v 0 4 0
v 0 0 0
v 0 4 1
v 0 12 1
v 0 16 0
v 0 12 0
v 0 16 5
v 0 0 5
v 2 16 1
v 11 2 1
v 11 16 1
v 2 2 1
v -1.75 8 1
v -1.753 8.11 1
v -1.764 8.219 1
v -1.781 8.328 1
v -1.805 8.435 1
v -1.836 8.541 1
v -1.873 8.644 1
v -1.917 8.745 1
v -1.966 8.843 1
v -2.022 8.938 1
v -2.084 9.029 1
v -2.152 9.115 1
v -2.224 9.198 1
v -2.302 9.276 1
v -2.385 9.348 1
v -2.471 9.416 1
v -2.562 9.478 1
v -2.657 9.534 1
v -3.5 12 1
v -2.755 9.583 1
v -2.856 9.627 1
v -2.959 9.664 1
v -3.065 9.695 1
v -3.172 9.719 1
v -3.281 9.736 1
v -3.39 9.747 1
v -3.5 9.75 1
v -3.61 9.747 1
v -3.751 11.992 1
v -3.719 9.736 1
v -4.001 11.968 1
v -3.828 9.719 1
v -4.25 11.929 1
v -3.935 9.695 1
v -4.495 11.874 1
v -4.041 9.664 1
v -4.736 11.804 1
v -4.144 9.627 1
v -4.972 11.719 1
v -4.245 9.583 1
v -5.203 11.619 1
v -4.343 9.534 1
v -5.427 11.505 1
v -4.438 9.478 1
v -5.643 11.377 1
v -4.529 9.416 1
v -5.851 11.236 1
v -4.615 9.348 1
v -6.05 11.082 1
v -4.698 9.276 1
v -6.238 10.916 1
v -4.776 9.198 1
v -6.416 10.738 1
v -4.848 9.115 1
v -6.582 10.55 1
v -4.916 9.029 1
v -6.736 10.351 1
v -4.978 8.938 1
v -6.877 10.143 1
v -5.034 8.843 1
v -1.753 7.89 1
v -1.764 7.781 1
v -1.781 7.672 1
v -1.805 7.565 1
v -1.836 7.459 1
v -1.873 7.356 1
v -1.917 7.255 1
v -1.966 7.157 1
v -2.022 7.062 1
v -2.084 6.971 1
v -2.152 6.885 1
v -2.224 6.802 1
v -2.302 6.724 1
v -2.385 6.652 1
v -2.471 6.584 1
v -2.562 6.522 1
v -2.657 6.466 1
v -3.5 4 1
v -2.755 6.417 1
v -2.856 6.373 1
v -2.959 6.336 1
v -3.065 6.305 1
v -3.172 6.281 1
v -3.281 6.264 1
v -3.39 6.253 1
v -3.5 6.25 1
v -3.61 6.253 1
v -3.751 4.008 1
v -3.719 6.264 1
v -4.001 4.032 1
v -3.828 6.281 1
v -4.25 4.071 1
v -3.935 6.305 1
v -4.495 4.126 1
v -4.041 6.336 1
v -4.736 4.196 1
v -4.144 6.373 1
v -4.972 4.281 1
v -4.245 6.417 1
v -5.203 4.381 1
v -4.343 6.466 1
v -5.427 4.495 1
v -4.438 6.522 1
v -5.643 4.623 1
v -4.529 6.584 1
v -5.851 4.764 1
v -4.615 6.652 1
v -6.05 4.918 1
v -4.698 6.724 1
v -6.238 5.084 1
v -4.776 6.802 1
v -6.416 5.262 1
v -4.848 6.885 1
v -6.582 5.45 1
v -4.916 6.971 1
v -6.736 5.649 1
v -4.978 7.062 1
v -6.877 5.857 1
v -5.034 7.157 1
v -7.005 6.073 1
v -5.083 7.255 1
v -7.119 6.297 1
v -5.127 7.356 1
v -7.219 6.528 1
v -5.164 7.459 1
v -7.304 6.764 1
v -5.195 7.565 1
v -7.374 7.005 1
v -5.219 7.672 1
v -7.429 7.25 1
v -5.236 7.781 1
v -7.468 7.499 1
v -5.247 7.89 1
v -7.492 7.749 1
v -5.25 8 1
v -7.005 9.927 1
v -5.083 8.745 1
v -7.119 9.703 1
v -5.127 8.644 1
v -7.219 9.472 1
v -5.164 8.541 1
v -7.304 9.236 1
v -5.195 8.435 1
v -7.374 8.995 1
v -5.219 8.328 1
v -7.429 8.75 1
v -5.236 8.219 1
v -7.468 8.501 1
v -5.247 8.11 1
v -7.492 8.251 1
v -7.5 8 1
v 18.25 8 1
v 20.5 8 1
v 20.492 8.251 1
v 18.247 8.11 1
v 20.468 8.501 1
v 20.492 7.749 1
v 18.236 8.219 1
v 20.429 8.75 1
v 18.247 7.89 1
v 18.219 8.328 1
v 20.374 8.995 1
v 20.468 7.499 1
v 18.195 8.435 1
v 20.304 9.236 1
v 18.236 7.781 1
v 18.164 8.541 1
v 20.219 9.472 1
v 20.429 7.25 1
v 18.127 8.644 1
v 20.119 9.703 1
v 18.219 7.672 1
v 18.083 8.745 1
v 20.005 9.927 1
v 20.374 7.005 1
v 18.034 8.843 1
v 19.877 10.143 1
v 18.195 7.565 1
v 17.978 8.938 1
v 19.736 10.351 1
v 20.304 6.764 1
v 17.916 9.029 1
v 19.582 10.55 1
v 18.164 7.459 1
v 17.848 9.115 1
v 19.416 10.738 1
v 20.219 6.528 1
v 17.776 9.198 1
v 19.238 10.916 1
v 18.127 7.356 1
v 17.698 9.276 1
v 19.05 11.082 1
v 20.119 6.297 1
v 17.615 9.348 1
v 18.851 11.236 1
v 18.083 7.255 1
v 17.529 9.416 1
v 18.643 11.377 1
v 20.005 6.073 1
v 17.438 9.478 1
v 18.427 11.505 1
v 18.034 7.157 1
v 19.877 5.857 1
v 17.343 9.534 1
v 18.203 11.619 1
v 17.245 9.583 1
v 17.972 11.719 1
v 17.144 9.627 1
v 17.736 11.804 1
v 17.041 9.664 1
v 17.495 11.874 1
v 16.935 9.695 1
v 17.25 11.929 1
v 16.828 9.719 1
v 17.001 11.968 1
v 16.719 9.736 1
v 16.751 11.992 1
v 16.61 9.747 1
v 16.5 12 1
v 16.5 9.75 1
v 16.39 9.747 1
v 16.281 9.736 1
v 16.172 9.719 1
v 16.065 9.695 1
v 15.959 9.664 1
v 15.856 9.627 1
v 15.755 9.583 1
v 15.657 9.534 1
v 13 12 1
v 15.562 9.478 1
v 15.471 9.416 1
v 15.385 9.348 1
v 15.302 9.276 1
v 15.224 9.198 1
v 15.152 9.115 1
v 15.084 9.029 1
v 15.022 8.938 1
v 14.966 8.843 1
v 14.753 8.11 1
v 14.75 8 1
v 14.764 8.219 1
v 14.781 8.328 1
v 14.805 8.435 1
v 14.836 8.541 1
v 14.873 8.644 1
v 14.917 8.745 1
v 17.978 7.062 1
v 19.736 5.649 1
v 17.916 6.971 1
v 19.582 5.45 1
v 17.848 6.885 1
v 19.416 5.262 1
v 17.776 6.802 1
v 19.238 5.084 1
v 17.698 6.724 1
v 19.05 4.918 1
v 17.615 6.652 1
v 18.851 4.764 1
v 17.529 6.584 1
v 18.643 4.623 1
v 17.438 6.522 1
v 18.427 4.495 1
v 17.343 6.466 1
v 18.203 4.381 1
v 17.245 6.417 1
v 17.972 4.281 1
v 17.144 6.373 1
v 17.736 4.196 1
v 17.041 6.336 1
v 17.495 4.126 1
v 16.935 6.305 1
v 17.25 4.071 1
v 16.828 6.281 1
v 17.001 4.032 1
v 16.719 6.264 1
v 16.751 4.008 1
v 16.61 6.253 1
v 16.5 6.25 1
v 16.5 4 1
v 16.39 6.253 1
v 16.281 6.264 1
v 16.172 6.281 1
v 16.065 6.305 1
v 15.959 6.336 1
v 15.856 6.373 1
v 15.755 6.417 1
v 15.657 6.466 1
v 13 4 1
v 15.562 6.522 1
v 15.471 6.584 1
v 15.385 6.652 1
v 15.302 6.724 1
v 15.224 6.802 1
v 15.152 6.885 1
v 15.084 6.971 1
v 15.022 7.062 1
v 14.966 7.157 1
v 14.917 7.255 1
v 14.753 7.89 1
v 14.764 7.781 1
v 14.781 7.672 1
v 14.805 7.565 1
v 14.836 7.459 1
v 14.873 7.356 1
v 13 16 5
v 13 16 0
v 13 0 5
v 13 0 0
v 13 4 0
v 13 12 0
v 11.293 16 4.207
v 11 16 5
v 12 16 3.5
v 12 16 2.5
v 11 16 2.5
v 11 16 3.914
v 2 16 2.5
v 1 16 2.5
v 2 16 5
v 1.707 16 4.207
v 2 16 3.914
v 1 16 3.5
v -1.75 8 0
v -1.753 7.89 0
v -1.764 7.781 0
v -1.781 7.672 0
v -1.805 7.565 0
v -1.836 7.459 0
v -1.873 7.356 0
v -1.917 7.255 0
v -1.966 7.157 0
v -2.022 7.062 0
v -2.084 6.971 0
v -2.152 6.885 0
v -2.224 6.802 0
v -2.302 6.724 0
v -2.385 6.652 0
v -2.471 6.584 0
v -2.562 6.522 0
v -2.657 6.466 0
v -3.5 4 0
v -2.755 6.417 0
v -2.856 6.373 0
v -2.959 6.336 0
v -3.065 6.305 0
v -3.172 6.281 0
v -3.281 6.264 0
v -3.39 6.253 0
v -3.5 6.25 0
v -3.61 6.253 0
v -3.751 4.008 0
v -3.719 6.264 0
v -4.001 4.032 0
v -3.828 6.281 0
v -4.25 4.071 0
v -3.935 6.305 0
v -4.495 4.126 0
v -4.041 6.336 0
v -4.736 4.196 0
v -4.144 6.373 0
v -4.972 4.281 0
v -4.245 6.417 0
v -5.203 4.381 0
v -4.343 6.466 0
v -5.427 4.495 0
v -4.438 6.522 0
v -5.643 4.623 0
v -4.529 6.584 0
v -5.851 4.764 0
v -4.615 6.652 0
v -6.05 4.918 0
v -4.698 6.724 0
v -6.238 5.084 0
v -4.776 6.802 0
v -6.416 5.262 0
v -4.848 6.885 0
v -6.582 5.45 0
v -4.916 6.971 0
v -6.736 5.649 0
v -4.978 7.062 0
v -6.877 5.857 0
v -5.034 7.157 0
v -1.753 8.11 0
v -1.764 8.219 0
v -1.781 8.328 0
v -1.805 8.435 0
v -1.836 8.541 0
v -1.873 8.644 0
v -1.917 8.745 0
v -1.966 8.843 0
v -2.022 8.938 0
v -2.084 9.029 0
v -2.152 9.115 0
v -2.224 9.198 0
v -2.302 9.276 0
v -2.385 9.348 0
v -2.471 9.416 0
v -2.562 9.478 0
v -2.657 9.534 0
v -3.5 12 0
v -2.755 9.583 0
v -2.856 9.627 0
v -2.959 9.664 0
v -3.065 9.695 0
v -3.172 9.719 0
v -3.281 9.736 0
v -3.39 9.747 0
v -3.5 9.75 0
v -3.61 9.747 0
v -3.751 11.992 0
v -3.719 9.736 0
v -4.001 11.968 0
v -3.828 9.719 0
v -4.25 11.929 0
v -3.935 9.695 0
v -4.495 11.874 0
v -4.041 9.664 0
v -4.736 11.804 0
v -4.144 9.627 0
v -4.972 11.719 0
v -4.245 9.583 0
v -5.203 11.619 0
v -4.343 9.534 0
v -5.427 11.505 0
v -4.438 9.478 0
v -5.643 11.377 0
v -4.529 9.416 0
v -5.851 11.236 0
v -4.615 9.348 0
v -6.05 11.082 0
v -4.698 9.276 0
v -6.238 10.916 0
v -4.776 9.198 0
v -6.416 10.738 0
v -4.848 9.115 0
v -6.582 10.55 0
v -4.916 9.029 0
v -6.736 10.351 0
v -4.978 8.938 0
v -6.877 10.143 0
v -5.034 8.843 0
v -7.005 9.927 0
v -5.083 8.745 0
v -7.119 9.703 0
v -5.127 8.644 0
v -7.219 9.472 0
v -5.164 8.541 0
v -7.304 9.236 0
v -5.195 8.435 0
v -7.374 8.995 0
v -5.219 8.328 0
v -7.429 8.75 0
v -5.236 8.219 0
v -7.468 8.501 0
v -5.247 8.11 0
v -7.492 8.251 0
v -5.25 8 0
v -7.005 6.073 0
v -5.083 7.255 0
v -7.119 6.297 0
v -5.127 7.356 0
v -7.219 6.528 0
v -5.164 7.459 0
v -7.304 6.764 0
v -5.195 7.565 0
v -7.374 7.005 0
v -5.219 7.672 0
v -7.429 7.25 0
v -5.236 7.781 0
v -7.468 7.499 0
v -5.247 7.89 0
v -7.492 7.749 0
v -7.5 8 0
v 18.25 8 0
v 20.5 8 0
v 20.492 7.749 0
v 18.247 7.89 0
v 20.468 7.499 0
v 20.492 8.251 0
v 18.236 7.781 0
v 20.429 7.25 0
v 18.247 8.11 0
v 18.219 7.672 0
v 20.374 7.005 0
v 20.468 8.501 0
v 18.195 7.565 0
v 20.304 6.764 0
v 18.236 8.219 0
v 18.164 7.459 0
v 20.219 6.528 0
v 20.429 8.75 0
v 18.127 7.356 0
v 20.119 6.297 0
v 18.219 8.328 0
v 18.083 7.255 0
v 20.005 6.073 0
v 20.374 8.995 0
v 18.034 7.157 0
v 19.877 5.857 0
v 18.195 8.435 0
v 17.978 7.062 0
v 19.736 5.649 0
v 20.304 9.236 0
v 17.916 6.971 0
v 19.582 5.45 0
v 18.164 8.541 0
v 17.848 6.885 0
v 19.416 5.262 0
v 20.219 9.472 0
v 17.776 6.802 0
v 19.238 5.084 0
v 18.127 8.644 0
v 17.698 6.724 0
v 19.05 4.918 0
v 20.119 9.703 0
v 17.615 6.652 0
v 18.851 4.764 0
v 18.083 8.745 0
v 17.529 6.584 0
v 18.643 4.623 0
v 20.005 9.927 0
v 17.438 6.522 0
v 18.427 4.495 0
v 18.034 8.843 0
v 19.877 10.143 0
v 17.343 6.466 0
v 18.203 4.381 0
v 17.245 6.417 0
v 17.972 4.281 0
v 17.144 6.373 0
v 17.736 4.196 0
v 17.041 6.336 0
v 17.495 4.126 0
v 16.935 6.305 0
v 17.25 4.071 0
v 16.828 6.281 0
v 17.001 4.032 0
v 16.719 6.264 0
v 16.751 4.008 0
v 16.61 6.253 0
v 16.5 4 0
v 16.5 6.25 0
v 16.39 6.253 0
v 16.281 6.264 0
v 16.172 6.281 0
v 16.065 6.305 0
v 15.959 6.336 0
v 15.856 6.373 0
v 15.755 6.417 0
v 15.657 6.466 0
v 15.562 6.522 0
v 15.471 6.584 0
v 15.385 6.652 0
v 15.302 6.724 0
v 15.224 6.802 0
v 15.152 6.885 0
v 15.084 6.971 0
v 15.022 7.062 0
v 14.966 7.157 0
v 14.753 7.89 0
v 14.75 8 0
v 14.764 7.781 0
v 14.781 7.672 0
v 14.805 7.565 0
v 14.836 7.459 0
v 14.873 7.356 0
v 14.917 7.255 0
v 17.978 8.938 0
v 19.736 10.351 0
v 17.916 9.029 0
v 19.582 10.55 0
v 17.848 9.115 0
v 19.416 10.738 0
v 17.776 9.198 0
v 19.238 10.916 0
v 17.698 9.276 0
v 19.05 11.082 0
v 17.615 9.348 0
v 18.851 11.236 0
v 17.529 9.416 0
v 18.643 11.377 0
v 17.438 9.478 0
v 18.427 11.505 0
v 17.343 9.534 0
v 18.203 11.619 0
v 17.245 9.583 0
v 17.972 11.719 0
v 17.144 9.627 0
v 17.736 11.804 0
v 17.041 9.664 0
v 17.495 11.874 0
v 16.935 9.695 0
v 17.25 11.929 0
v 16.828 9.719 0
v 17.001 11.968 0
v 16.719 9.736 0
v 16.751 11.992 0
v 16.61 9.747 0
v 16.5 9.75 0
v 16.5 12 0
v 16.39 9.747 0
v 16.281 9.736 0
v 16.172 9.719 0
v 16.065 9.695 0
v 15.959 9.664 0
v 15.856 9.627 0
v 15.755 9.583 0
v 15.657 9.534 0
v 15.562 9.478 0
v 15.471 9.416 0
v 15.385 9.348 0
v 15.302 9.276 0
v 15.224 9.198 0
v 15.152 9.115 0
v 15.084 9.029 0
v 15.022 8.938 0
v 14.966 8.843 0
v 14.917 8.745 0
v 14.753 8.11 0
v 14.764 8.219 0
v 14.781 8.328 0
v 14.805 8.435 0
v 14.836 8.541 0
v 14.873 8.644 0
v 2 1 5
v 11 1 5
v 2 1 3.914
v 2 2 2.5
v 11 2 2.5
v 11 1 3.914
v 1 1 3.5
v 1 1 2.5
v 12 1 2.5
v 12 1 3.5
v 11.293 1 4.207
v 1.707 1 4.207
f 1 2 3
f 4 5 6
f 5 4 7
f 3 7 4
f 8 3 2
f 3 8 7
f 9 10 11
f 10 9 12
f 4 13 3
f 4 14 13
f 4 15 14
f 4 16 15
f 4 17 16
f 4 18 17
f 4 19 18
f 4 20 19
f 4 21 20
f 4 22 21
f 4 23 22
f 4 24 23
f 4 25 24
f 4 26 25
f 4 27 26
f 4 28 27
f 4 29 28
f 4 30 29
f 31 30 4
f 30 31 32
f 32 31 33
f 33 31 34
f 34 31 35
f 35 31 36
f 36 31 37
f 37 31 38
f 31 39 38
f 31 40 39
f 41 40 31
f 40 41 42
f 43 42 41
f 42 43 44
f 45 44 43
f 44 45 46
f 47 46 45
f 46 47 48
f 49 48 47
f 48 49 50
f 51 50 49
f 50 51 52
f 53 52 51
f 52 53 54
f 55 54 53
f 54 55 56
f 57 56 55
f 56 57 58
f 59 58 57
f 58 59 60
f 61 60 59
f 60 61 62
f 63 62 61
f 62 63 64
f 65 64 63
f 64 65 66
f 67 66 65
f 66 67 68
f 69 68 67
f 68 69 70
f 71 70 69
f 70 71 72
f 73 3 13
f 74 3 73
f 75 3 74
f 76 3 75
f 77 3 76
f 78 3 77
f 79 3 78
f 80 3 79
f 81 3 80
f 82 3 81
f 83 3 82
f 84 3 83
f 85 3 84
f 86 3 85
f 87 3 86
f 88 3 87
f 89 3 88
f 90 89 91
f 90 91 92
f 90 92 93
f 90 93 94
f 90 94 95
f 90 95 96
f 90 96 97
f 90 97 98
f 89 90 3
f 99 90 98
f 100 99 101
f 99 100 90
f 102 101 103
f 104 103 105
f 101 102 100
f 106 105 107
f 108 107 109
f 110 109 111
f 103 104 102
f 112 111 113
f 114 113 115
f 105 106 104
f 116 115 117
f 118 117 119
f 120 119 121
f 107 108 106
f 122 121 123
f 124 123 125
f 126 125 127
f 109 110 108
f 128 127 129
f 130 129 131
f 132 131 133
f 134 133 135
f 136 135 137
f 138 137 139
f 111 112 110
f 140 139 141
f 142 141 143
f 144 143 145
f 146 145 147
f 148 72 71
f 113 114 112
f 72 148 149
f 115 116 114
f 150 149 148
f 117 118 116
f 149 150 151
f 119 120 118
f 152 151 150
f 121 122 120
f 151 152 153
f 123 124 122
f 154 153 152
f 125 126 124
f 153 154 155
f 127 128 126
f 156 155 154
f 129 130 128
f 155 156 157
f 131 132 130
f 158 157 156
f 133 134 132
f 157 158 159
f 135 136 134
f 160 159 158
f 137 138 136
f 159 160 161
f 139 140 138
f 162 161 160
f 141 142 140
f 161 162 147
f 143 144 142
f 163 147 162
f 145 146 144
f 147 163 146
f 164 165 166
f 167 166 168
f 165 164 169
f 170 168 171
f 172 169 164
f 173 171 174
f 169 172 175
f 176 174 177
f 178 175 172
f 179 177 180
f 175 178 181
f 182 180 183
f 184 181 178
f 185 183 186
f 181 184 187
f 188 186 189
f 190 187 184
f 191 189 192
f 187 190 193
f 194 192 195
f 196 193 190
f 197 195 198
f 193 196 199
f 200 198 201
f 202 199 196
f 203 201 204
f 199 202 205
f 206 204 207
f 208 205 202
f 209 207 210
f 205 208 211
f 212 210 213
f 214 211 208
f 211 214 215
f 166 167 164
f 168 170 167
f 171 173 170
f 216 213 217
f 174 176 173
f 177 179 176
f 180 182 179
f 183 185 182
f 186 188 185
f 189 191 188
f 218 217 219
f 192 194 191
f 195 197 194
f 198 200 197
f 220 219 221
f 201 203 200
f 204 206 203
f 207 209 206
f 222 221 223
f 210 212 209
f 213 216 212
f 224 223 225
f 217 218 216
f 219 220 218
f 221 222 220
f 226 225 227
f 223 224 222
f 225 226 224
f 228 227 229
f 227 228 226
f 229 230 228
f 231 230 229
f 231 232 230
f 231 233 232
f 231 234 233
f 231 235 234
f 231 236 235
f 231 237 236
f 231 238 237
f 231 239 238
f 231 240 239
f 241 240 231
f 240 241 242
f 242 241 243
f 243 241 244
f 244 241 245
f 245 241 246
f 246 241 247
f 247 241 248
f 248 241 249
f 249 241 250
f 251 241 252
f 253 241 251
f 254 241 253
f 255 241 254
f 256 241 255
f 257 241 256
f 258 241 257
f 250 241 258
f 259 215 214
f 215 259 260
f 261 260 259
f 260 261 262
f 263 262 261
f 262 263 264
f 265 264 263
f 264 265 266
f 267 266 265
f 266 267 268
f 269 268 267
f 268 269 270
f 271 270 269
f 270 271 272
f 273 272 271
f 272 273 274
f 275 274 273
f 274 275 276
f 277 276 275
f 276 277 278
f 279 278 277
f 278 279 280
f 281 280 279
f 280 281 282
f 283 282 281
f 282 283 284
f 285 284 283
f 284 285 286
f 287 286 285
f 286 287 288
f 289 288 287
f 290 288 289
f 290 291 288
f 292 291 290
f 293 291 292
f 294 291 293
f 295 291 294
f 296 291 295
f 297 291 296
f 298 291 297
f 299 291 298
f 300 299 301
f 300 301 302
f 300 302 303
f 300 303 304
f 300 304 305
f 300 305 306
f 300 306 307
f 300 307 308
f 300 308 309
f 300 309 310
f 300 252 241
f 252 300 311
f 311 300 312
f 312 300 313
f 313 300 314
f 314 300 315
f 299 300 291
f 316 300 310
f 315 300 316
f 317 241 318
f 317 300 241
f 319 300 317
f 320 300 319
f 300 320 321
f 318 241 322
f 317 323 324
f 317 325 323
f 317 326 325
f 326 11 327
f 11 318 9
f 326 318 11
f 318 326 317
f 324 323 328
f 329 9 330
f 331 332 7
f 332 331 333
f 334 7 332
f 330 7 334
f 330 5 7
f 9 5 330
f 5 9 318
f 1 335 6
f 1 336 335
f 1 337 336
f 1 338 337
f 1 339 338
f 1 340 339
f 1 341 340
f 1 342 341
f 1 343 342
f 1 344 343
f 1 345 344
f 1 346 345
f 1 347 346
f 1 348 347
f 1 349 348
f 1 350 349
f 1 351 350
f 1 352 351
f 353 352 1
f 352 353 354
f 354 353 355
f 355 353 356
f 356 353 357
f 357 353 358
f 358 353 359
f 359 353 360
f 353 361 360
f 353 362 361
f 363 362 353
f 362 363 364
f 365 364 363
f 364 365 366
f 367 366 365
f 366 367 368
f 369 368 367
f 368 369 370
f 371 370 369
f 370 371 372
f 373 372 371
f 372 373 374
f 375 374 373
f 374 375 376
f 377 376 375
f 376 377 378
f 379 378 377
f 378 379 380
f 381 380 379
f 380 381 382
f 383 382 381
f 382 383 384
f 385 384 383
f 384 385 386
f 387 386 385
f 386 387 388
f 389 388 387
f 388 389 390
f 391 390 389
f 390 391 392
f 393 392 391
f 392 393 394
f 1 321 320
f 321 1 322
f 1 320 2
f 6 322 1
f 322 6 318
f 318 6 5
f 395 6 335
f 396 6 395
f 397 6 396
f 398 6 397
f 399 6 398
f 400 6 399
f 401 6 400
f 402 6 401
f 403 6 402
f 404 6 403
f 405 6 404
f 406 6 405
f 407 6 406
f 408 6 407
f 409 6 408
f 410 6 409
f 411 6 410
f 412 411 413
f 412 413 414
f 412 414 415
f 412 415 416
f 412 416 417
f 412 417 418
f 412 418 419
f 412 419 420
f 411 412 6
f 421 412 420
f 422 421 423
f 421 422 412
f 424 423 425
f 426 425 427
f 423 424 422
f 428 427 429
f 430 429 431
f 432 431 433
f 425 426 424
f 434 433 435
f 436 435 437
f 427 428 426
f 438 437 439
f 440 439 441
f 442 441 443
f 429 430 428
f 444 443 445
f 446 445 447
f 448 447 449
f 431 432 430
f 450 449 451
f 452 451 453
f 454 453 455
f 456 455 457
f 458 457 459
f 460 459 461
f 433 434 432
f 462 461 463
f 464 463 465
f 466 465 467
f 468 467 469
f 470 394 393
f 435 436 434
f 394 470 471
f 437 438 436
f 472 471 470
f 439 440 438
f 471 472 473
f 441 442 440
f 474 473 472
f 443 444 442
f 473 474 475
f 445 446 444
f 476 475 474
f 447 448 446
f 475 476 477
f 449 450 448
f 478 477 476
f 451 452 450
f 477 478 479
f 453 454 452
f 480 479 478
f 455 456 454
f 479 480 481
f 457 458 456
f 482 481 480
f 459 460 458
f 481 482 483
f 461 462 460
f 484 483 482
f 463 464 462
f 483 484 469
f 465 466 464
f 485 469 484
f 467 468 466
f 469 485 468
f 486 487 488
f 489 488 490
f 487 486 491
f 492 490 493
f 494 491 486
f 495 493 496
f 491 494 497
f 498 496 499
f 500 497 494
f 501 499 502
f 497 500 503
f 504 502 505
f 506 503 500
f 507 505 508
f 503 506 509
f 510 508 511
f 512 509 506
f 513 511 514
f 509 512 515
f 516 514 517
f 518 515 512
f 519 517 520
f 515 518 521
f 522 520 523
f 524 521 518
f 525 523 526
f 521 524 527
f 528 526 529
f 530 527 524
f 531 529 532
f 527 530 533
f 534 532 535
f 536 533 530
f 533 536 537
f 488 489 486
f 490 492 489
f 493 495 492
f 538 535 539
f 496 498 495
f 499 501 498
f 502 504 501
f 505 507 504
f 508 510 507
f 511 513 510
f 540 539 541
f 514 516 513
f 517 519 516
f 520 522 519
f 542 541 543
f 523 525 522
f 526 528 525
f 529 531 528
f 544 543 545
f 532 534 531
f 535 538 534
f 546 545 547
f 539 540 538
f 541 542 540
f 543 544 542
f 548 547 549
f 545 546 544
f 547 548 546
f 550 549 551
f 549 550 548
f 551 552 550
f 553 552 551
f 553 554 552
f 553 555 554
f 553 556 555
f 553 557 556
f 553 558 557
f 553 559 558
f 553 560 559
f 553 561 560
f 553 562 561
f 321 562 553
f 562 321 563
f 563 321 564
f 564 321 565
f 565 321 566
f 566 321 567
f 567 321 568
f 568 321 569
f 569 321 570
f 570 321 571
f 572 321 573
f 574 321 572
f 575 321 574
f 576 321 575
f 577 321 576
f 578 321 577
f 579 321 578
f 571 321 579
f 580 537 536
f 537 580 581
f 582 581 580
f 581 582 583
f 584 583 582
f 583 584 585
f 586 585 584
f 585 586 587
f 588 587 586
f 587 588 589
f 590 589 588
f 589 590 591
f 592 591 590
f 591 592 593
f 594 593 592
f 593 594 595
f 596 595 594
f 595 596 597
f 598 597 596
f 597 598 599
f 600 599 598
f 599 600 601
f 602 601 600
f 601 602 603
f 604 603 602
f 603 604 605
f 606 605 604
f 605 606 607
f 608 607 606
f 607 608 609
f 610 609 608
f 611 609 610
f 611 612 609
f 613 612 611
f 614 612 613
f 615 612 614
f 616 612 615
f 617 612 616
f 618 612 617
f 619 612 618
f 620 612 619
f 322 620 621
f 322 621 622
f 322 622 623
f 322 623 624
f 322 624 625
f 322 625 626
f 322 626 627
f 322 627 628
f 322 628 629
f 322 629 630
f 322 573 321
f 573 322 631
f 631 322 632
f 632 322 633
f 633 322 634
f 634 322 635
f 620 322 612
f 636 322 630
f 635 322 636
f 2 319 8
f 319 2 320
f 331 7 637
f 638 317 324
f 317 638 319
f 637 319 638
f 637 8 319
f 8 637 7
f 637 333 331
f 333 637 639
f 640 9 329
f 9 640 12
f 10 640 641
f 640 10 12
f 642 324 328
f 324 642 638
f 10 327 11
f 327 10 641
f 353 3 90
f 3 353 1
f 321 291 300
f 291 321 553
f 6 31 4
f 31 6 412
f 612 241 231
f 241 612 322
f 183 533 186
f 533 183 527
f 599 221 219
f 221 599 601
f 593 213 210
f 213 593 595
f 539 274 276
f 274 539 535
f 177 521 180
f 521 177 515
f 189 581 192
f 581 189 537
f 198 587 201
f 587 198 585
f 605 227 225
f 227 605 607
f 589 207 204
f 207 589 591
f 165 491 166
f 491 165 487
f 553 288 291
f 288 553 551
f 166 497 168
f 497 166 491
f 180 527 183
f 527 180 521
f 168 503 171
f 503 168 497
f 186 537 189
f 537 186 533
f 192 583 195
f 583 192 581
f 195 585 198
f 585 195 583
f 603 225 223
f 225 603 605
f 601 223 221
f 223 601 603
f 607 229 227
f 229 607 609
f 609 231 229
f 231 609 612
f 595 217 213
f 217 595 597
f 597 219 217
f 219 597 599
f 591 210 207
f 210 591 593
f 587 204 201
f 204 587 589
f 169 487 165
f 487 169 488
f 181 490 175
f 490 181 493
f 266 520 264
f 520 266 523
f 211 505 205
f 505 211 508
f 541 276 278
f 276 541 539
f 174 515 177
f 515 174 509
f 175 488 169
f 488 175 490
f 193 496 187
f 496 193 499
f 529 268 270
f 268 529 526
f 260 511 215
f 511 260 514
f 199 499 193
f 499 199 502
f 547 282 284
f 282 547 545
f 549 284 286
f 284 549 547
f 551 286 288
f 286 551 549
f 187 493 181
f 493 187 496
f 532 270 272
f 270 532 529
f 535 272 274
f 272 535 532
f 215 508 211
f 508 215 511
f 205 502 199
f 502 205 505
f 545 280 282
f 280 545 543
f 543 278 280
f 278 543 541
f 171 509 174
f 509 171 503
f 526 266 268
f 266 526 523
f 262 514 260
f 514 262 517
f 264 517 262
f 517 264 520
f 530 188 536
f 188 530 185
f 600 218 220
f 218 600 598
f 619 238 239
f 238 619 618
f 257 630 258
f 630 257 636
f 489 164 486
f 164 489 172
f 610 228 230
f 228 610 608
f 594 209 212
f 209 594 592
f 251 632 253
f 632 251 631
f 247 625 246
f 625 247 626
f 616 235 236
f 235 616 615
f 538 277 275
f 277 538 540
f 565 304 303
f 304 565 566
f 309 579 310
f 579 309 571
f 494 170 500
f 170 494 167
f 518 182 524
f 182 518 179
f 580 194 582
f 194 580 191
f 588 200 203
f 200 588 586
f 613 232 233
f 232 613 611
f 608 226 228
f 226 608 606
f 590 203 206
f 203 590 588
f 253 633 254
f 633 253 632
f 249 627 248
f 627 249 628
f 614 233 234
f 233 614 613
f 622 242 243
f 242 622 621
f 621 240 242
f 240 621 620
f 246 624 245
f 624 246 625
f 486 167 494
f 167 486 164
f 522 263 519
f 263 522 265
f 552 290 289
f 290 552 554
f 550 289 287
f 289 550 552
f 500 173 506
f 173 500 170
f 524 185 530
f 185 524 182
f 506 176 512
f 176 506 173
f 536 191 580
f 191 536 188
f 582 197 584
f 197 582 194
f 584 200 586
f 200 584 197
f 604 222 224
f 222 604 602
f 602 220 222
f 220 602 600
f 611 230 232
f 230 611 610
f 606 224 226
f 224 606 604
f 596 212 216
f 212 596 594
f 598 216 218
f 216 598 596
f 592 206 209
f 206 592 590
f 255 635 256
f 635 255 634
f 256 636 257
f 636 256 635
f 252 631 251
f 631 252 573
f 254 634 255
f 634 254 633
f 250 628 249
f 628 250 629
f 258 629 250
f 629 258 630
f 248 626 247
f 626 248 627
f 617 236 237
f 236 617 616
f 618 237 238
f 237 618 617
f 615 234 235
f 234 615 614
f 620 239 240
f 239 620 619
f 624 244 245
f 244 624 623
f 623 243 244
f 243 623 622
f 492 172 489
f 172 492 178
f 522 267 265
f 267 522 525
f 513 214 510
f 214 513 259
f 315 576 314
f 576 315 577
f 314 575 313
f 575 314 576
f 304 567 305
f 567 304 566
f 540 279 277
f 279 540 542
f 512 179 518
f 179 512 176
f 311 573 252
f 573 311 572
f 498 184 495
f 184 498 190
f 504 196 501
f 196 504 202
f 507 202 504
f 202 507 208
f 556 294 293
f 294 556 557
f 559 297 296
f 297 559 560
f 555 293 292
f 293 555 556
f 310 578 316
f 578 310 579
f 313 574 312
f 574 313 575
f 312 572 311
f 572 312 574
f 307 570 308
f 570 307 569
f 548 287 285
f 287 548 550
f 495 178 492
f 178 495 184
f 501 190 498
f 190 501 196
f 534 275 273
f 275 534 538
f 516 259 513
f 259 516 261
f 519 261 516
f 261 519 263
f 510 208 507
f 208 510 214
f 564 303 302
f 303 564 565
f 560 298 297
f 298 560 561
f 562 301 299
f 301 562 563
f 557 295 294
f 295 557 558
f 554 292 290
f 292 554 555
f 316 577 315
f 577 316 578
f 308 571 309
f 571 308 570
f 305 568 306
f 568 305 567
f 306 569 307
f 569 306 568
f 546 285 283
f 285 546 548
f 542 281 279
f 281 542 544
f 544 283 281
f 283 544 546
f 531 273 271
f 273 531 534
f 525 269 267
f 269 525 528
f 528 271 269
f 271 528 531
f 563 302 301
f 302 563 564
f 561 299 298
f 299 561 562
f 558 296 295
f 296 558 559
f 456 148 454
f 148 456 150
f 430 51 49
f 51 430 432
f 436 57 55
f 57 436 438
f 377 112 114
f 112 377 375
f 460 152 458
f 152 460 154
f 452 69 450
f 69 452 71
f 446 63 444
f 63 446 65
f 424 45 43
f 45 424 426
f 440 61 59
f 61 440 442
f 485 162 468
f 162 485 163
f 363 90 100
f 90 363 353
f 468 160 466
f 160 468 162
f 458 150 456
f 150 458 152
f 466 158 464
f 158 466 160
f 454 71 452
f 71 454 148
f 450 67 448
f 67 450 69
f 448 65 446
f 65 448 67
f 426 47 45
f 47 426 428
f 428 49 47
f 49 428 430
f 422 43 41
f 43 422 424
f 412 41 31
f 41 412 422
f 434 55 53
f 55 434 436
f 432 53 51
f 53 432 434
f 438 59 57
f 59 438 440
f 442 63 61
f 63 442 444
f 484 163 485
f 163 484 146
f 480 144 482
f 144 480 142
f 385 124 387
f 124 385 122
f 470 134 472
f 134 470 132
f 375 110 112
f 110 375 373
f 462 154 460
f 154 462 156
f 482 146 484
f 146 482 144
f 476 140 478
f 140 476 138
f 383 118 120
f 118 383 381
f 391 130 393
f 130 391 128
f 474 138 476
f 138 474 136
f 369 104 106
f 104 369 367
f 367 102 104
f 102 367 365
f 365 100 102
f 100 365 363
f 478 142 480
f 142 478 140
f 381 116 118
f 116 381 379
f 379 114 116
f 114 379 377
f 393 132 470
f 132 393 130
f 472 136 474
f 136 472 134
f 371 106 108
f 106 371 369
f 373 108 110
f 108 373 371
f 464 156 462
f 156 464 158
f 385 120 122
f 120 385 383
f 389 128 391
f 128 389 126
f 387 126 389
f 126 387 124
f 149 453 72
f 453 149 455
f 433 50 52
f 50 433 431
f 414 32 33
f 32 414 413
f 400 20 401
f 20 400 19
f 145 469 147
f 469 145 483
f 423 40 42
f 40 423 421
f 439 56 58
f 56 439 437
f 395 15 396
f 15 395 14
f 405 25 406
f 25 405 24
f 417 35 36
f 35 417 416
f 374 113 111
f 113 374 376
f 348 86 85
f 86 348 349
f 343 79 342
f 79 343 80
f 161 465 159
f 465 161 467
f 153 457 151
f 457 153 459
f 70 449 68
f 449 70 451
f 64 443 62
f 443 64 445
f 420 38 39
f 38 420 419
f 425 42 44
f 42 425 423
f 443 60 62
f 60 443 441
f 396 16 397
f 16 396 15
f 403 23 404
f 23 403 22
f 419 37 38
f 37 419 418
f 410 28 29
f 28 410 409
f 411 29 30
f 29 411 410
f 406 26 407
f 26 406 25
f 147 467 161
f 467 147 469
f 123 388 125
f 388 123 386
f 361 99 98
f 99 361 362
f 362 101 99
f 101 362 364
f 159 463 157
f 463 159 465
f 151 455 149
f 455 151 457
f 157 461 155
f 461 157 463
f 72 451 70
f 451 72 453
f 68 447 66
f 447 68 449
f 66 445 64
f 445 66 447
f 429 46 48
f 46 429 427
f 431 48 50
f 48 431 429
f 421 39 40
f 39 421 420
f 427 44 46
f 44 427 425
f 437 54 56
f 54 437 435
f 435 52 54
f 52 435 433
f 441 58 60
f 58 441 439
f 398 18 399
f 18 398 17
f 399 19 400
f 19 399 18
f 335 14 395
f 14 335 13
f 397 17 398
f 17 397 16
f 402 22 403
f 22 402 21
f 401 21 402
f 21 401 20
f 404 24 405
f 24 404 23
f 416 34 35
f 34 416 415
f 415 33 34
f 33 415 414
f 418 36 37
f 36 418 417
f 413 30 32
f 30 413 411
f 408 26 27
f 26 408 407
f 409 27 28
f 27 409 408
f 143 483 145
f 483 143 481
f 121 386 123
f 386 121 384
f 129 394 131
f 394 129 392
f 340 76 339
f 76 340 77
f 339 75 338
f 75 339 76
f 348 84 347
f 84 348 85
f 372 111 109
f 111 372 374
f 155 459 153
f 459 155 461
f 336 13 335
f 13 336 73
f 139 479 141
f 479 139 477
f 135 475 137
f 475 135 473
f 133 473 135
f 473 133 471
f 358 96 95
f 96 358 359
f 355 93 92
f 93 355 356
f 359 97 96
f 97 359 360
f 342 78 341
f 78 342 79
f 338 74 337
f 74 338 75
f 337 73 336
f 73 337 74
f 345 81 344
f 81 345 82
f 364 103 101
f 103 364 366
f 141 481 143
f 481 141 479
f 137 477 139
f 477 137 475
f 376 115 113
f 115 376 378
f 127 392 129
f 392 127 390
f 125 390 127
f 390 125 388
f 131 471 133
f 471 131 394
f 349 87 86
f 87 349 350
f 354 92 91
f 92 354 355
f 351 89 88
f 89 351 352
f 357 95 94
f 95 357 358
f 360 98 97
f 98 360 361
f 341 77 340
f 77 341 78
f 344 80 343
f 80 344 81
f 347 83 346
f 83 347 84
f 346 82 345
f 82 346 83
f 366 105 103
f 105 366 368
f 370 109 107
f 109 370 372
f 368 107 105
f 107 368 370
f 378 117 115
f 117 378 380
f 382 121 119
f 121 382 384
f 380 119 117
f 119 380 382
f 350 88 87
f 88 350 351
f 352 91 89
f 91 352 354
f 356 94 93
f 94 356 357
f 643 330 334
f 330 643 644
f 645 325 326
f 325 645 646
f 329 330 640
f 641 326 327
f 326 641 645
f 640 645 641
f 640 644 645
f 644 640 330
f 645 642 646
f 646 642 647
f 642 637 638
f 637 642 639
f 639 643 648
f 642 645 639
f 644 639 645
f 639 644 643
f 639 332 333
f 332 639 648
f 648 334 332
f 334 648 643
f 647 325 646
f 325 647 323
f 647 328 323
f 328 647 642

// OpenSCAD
/* pcb_box_slide_with_tabs.scad
 * By Nicholas C Lewis - Jan 1, 2011
 * http://www.thingiverse.com/thing:5396 
 *
 * derived from pcb_box_slide.scad 
 *     Parametric, open PCB-box (slide-in) by chlunde
 *     http://www.thingiverse.com/thing:4071
 *
 * CHANGES
 * - adjusted to fit Arduino Mega
 * - added mounting tabs
 * - turned off cutouts
 * - adjusted bottom cutout size
 */

// According to, module dimensions are 14.5mm x 11mm
// https://www.amazon.co.uk/Hobby-Components-Ltd-TTP223-Capacitive/dp/B0711DC76D
$fn=100;

pcb_width = 11;
pcb_length =14;
pcb_height =1;
slisse = 1;

pcb_bottom_margin = 1.5;
wall_width_thick = 2;
wall_width = wall_width_thick-slisse;
box_height = 5;

// Tab and Mounting Parameters
tab_hole_radius=3.5/2;
tab_outer_radius=8/2;
tab_mount_width = 20;		// X - center to center of mounting hole
tab_mount_length = 0;		// Y - center to center of mounting hole



module tab() {
	difference(){
		union() {
			translate([-tab_outer_radius,-tab_outer_radius,0])
			cube([tab_outer_radius,2*tab_outer_radius,wall_width]);
			translate([-tab_outer_radius,0,0])
				cylinder(r=tab_outer_radius, h = wall_width);
		}
		translate([-tab_outer_radius,0,0])
		cylinder(r= tab_hole_radius, h = wall_width+3,center=true);
	}

}

module JDtab(X, Y) {
	rotate(atan(Y / X), [0,0,1])
	difference(){
		union() {
			translate([0,-tab_outer_radius,0])
			cube([sqrt(X*X+Y*Y),2*tab_outer_radius,wall_width]);
			translate([sqrt(X*X+Y*Y),0,0])
				cylinder(r=tab_outer_radius, h = wall_width);
		}
		translate([sqrt(X*X+Y*Y),0,0])
		cylinder(r= tab_hole_radius, h = wall_width+3,center=true);
	}

}

module box() {
  union() {
    cube([pcb_width + 2*wall_width, pcb_length + 2*wall_width, wall_width]);

    cube([wall_width_thick, pcb_length + 2*wall_width, box_height]);

    cube([pcb_width + 2*wall_width, wall_width_thick, box_height]);

    %translate([0, pcb_length+wall_width, 0])
      cube([pcb_width + 2*wall_width,wall_width,box_height]);
    translate([pcb_width + wall_width - slisse,0,0])
      cube([wall_width_thick, pcb_length + 2*wall_width, box_height]);
  }

// ORIGINAL Tabs
//comment out this part to remove tabs
// for(i=[5,(pcb_length + 2*wall_width)/2,pcb_length + 2*wall_width-5]){
//	translate([0,i,0])tab();
//	translate([pcb_width + 2*wall_width,i,0])mirror()tab();
// }

// JamesDavid's Tabs
  translate([(pcb_width + 2*wall_width)/2, (pcb_length + 2*wall_width)/2, 0]) {

// If you want tabs on the Left leave uncommented
   JDtab(tab_mount_width/2, tab_mount_length/2);
   JDtab(-tab_mount_width/2, tab_mount_length/2);

// If you want tabs on the Right leave uncommented
   mirror()JDtab(tab_mount_width/2, tab_mount_length/2);
   mirror()JDtab(-tab_mount_width/2, tab_mount_length/2);
  }
}

module pcb() {
  translate([wall_width, wall_width, wall_width + pcb_bottom_margin])
    cube([pcb_width,pcb_length + wall_width + 0.1,pcb_height]);
  translate([wall_width, wall_width, wall_width + pcb_bottom_margin+pcb_height])rotate([0,45,0])
    cube([pcb_height,pcb_length + wall_width + 0.1,pcb_height]);
  translate([wall_width+pcb_width-2*cos(45)*pcb_height, wall_width, wall_width + pcb_bottom_margin+pcb_height])rotate([0,45,0])
    cube([pcb_height,pcb_length + wall_width + 0.1,pcb_height]);
  translate([wall_width_thick, wall_width, wall_width + pcb_bottom_margin])
    cube([pcb_width-2*slisse,pcb_length + wall_width + 0.1,box_height]);

}



module holes() {
  *translate([wall_width + pcb_width/2, wall_width_thick + 0.1, pcb_width/2+wall_width])
    rotate(a=90,v=[1,0,0])
      cylinder(r=pcb_width/2, h=wall_width_thick + 0.2);

  *translate([-0.1, wall_width + pcb_length/2, pcb_length/2 + wall_width])
    rotate(a=90,v=[0,1,0])
      cylinder(r=pcb_length/2, h=wall_width_thick + 0.2);

  *translate([pcb_width + wall_width - slisse - 0.1, wall_width + pcb_length/2, pcb_length/2 + wall_width])
    rotate(a=90,v=[0,1,0])
      cylinder(r=pcb_length/2, h=wall_width_thick + 0.2);

 * translate([pcb_width/2 + wall_width, wall_width + pcb_length/2, -0.1])
    rotate(a=0,v=[0,1,0])
      cylinder(r=min(pcb_length,pcb_width)/2 - wall_width/2, h=wall_width_thick + 0.2);
   
  inner_margin = 9;
  translate([inner_margin +wall_width, inner_margin+wall_width, -0.1])
    cube([pcb_width-inner_margin*2,pcb_length -inner_margin*2,wall_width + 0.2]);
}

difference() {
 box();
 pcb();
 holes();
//  JDtab(tab_mount_width/2, tab_mount_length/2);

}

* color([1,0,0])
  translate([pcb_width/2 + wall_width, wall_width + pcb_length/2, -0.1])
    rotate(a=0,v=[0,1,0])
      cylinder(r=min(pcb_length,pcb_width)/2 - wall_width/2, h=wall_width_thick + 0.2);
